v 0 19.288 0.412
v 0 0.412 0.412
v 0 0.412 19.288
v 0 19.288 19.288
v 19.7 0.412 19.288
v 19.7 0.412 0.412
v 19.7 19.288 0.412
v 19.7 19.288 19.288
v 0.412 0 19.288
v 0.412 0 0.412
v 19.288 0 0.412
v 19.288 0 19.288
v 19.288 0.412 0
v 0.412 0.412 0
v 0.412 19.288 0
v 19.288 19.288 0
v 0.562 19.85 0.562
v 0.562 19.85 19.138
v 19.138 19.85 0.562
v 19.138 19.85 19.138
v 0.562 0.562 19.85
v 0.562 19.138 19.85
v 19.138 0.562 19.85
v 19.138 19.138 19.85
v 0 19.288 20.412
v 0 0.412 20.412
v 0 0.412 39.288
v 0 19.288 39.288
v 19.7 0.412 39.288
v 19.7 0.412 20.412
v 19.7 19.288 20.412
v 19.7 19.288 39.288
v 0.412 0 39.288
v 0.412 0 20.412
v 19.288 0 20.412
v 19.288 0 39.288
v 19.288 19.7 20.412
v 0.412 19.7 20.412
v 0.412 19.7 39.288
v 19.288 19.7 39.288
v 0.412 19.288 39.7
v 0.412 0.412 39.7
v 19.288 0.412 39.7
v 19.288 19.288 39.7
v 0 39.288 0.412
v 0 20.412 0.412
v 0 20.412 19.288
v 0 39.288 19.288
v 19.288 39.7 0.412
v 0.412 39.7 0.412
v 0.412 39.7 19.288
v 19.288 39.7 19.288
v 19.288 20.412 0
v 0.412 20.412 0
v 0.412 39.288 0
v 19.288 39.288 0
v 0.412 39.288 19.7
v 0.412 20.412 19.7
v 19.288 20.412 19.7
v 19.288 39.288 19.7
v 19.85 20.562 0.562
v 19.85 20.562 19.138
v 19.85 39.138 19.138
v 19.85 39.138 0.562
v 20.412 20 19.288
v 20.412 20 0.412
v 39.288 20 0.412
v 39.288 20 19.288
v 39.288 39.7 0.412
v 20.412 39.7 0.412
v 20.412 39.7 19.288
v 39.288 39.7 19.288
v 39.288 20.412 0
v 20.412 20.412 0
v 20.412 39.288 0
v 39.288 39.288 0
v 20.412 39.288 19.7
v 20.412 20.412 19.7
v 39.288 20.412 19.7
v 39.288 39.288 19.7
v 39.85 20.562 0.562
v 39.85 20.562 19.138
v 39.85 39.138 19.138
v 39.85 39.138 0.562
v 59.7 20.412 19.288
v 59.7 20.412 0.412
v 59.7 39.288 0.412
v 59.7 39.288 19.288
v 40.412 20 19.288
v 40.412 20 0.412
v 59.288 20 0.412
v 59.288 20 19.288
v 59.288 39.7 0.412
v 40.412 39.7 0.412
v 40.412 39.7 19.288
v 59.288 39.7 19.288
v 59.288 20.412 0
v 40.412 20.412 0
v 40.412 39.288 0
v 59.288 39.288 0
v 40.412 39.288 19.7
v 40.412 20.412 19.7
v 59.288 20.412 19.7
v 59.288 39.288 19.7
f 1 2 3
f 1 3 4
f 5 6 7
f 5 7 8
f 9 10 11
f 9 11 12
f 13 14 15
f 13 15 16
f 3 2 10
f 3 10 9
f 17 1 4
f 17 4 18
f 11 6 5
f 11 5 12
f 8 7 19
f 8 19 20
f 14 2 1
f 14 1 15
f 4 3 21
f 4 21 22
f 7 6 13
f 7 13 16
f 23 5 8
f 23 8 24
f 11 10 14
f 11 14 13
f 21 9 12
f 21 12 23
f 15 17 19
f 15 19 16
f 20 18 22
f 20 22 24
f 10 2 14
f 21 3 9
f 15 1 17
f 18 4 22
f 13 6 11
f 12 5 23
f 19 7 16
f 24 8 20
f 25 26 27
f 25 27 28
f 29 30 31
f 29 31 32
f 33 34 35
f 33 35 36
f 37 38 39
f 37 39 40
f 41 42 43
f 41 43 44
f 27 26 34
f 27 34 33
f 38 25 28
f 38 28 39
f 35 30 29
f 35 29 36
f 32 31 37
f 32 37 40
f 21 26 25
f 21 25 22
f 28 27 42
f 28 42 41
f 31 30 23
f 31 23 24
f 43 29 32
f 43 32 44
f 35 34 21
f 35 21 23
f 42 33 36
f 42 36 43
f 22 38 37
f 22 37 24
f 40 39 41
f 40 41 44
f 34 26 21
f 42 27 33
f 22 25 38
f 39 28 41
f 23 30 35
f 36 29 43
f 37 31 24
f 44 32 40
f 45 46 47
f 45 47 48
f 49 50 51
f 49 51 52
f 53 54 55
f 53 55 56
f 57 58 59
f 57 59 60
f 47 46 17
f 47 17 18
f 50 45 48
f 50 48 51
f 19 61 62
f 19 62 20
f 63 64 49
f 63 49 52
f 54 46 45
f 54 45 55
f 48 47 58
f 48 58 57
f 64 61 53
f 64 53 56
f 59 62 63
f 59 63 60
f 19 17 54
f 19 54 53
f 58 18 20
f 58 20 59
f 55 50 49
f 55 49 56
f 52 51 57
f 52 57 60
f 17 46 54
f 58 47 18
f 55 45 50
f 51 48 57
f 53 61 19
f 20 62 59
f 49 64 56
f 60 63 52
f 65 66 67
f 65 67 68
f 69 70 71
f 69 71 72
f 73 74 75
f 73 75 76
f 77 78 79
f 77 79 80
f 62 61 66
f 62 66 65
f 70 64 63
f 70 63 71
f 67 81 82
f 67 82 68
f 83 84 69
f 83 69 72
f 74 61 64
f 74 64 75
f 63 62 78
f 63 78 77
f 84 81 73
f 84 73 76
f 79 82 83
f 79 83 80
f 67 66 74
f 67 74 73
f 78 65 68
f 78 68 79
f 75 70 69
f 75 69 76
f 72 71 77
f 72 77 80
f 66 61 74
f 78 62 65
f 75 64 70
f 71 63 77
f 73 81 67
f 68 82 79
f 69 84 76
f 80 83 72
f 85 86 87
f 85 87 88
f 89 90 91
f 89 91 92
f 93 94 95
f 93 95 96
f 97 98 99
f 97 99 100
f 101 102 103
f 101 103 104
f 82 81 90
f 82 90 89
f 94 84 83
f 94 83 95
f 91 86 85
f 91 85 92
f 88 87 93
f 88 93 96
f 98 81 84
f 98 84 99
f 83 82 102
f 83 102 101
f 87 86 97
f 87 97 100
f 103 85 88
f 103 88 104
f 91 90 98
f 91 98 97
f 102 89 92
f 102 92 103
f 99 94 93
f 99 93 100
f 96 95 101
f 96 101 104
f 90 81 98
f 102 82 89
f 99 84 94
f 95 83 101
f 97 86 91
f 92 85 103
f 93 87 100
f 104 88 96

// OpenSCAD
// Wongo piece 14: Upright hook. GPL-3.0.
// 20 mm lattice; 0.15 mm inward surface clearance; 0.5 mm chamfer.
// Mesh is identical to the STL; changing unit scales the complete finished mesh.
unit=20;
scale([unit/20,unit/20,unit/20]) polyhedron(points=[[0,19.28786797,0.41213203],[0,0.41213203,0.41213203],[0,0.41213203,19.28786797],[0,19.28786797,19.28786797],[19.7,0.41213203,19.28786797],[19.7,0.41213203,0.41213203],[19.7,19.28786797,0.41213203],[19.7,19.28786797,19.28786797],[0.41213203,0,19.28786797],[0.41213203,0,0.41213203],[19.28786797,0,0.41213203],[19.28786797,0,19.28786797],[19.28786797,0.41213203,0],[0.41213203,0.41213203,0],[0.41213203,19.28786797,0],[19.28786797,19.28786797,0],[0.56213203,19.85,0.56213203],[0.56213203,19.85,19.13786797],[19.13786797,19.85,0.56213203],[19.13786797,19.85,19.13786797],[0.56213203,0.56213203,19.85],[0.56213203,19.13786797,19.85],[19.13786797,0.56213203,19.85],[19.13786797,19.13786797,19.85],[0,19.28786797,20.41213203],[0,0.41213203,20.41213203],[0,0.41213203,39.28786797],[0,19.28786797,39.28786797],[19.7,0.41213203,39.28786797],[19.7,0.41213203,20.41213203],[19.7,19.28786797,20.41213203],[19.7,19.28786797,39.28786797],[0.41213203,0,39.28786797],[0.41213203,0,20.41213203],[19.28786797,0,20.41213203],[19.28786797,0,39.28786797],[19.28786797,19.7,20.41213203],[0.41213203,19.7,20.41213203],[0.41213203,19.7,39.28786797],[19.28786797,19.7,39.28786797],[0.41213203,19.28786797,39.7],[0.41213203,0.41213203,39.7],[19.28786797,0.41213203,39.7],[19.28786797,19.28786797,39.7],[0,39.28786797,0.41213203],[0,20.41213203,0.41213203],[0,20.41213203,19.28786797],[0,39.28786797,19.28786797],[19.28786797,39.7,0.41213203],[0.41213203,39.7,0.41213203],[0.41213203,39.7,19.28786797],[19.28786797,39.7,19.28786797],[19.28786797,20.41213203,0],[0.41213203,20.41213203,0],[0.41213203,39.28786797,0],[19.28786797,39.28786797,0],[0.41213203,39.28786797,19.7],[0.41213203,20.41213203,19.7],[19.28786797,20.41213203,19.7],[19.28786797,39.28786797,19.7],[19.85,20.56213203,0.56213203],[19.85,20.56213203,19.13786797],[19.85,39.13786797,19.13786797],[19.85,39.13786797,0.56213203],[20.41213203,20,19.28786797],[20.41213203,20,0.41213203],[39.28786797,20,0.41213203],[39.28786797,20,19.28786797],[39.28786797,39.7,0.41213203],[20.41213203,39.7,0.41213203],[20.41213203,39.7,19.28786797],[39.28786797,39.7,19.28786797],[39.28786797,20.41213203,0],[20.41213203,20.41213203,0],[20.41213203,39.28786797,0],[39.28786797,39.28786797,0],[20.41213203,39.28786797,19.7],[20.41213203,20.41213203,19.7],[39.28786797,20.41213203,19.7],[39.28786797,39.28786797,19.7],[39.85,20.56213203,0.56213203],[39.85,20.56213203,19.13786797],[39.85,39.13786797,19.13786797],[39.85,39.13786797,0.56213203],[59.7,20.41213203,19.28786797],[59.7,20.41213203,0.41213203],[59.7,39.28786797,0.41213203],[59.7,39.28786797,19.28786797],[40.41213203,20,19.28786797],[40.41213203,20,0.41213203],[59.28786797,20,0.41213203],[59.28786797,20,19.28786797],[59.28786797,39.7,0.41213203],[40.41213203,39.7,0.41213203],[40.41213203,39.7,19.28786797],[59.28786797,39.7,19.28786797],[59.28786797,20.41213203,0],[40.41213203,20.41213203,0],[40.41213203,39.28786797,0],[59.28786797,39.28786797,0],[40.41213203,39.28786797,19.7],[40.41213203,20.41213203,19.7],[59.28786797,20.41213203,19.7],[59.28786797,39.28786797,19.7]],faces=[[2,1,0],[3,2,0],[6,5,4],[7,6,4],[10,9,8],[11,10,8],[14,13,12],[15,14,12],[9,1,2],[8,9,2],[3,0,16],[17,3,16],[4,5,10],[11,4,10],[18,6,7],[19,18,7],[0,1,13],[14,0,13],[20,2,3],[21,20,3],[12,5,6],[15,12,6],[7,4,22],[23,7,22],[13,9,10],[12,13,10],[11,8,20],[22,11,20],[18,16,14],[15,18,14],[21,17,19],[23,21,19],[13,1,9],[8,2,20],[16,0,14],[21,3,17],[10,5,12],[22,4,11],[15,6,18],[19,7,23],[26,25,24],[27,26,24],[30,29,28],[31,30,28],[34,33,32],[35,34,32],[38,37,36],[39,38,36],[42,41,40],[43,42,40],[33,25,26],[32,33,26],[27,24,37],[38,27,37],[28,29,34],[35,28,34],[36,30,31],[39,36,31],[24,25,20],[21,24,20],[41,26,27],[40,41,27],[22,29,30],[23,22,30],[31,28,42],[43,31,42],[20,33,34],[22,20,34],[35,32,41],[42,35,41],[36,37,21],[23,36,21],[40,38,39],[43,40,39],[20,25,33],[32,26,41],[37,24,21],[40,27,38],[34,29,22],[42,28,35],[23,30,36],[39,31,43],[46,45,44],[47,46,44],[50,49,48],[51,50,48],[54,53,52],[55,54,52],[58,57,56],[59,58,56],[16,45,46],[17,16,46],[47,44,49],[50,47,49],[61,60,18],[19,61,18],[48,63,62],[51,48,62],[44,45,53],[54,44,53],[57,46,47],[56,57,47],[52,60,63],[55,52,63],[62,61,58],[59,62,58],[53,16,18],[52,53,18],[19,17,57],[58,19,57],[48,49,54],[55,48,54],[56,50,51],[59,56,51],[53,45,16],[17,46,57],[49,44,54],[56,47,50],[18,60,52],[58,61,19],[55,63,48],[51,62,59],[66,65,64],[67,66,64],[70,69,68],[71,70,68],[74,73,72],[75,74,72],[78,77,76],[79,78,76],[65,60,61],[64,65,61],[62,63,69],[70,62,69],[81,80,66],[67,81,66],[68,83,82],[71,68,82],[63,60,73],[74,63,73],[77,61,62],[76,77,62],[72,80,83],[75,72,83],[82,81,78],[79,82,78],[73,65,66],[72,73,66],[67,64,77],[78,67,77],[68,69,74],[75,68,74],[76,70,71],[79,76,71],[73,60,65],[64,61,77],[69,63,74],[76,62,70],[66,80,72],[78,81,67],[75,83,68],[71,82,79],[86,85,84],[87,86,84],[90,89,88],[91,90,88],[94,93,92],[95,94,92],[98,97,96],[99,98,96],[102,101,100],[103,102,100],[89,80,81],[88,89,81],[82,83,93],[94,82,93],[84,85,90],[91,84,90],[92,86,87],[95,92,87],[83,80,97],[98,83,97],[101,81,82],[100,101,82],[96,85,86],[99,96,86],[87,84,102],[103,87,102],[97,89,90],[96,97,90],[91,88,101],[102,91,101],[92,93,98],[99,92,98],[100,94,95],[103,100,95],[97,80,89],[88,81,101],[93,83,98],[100,82,94],[90,85,96],[102,84,91],[99,86,92],[95,87,103]],convexity=10);
